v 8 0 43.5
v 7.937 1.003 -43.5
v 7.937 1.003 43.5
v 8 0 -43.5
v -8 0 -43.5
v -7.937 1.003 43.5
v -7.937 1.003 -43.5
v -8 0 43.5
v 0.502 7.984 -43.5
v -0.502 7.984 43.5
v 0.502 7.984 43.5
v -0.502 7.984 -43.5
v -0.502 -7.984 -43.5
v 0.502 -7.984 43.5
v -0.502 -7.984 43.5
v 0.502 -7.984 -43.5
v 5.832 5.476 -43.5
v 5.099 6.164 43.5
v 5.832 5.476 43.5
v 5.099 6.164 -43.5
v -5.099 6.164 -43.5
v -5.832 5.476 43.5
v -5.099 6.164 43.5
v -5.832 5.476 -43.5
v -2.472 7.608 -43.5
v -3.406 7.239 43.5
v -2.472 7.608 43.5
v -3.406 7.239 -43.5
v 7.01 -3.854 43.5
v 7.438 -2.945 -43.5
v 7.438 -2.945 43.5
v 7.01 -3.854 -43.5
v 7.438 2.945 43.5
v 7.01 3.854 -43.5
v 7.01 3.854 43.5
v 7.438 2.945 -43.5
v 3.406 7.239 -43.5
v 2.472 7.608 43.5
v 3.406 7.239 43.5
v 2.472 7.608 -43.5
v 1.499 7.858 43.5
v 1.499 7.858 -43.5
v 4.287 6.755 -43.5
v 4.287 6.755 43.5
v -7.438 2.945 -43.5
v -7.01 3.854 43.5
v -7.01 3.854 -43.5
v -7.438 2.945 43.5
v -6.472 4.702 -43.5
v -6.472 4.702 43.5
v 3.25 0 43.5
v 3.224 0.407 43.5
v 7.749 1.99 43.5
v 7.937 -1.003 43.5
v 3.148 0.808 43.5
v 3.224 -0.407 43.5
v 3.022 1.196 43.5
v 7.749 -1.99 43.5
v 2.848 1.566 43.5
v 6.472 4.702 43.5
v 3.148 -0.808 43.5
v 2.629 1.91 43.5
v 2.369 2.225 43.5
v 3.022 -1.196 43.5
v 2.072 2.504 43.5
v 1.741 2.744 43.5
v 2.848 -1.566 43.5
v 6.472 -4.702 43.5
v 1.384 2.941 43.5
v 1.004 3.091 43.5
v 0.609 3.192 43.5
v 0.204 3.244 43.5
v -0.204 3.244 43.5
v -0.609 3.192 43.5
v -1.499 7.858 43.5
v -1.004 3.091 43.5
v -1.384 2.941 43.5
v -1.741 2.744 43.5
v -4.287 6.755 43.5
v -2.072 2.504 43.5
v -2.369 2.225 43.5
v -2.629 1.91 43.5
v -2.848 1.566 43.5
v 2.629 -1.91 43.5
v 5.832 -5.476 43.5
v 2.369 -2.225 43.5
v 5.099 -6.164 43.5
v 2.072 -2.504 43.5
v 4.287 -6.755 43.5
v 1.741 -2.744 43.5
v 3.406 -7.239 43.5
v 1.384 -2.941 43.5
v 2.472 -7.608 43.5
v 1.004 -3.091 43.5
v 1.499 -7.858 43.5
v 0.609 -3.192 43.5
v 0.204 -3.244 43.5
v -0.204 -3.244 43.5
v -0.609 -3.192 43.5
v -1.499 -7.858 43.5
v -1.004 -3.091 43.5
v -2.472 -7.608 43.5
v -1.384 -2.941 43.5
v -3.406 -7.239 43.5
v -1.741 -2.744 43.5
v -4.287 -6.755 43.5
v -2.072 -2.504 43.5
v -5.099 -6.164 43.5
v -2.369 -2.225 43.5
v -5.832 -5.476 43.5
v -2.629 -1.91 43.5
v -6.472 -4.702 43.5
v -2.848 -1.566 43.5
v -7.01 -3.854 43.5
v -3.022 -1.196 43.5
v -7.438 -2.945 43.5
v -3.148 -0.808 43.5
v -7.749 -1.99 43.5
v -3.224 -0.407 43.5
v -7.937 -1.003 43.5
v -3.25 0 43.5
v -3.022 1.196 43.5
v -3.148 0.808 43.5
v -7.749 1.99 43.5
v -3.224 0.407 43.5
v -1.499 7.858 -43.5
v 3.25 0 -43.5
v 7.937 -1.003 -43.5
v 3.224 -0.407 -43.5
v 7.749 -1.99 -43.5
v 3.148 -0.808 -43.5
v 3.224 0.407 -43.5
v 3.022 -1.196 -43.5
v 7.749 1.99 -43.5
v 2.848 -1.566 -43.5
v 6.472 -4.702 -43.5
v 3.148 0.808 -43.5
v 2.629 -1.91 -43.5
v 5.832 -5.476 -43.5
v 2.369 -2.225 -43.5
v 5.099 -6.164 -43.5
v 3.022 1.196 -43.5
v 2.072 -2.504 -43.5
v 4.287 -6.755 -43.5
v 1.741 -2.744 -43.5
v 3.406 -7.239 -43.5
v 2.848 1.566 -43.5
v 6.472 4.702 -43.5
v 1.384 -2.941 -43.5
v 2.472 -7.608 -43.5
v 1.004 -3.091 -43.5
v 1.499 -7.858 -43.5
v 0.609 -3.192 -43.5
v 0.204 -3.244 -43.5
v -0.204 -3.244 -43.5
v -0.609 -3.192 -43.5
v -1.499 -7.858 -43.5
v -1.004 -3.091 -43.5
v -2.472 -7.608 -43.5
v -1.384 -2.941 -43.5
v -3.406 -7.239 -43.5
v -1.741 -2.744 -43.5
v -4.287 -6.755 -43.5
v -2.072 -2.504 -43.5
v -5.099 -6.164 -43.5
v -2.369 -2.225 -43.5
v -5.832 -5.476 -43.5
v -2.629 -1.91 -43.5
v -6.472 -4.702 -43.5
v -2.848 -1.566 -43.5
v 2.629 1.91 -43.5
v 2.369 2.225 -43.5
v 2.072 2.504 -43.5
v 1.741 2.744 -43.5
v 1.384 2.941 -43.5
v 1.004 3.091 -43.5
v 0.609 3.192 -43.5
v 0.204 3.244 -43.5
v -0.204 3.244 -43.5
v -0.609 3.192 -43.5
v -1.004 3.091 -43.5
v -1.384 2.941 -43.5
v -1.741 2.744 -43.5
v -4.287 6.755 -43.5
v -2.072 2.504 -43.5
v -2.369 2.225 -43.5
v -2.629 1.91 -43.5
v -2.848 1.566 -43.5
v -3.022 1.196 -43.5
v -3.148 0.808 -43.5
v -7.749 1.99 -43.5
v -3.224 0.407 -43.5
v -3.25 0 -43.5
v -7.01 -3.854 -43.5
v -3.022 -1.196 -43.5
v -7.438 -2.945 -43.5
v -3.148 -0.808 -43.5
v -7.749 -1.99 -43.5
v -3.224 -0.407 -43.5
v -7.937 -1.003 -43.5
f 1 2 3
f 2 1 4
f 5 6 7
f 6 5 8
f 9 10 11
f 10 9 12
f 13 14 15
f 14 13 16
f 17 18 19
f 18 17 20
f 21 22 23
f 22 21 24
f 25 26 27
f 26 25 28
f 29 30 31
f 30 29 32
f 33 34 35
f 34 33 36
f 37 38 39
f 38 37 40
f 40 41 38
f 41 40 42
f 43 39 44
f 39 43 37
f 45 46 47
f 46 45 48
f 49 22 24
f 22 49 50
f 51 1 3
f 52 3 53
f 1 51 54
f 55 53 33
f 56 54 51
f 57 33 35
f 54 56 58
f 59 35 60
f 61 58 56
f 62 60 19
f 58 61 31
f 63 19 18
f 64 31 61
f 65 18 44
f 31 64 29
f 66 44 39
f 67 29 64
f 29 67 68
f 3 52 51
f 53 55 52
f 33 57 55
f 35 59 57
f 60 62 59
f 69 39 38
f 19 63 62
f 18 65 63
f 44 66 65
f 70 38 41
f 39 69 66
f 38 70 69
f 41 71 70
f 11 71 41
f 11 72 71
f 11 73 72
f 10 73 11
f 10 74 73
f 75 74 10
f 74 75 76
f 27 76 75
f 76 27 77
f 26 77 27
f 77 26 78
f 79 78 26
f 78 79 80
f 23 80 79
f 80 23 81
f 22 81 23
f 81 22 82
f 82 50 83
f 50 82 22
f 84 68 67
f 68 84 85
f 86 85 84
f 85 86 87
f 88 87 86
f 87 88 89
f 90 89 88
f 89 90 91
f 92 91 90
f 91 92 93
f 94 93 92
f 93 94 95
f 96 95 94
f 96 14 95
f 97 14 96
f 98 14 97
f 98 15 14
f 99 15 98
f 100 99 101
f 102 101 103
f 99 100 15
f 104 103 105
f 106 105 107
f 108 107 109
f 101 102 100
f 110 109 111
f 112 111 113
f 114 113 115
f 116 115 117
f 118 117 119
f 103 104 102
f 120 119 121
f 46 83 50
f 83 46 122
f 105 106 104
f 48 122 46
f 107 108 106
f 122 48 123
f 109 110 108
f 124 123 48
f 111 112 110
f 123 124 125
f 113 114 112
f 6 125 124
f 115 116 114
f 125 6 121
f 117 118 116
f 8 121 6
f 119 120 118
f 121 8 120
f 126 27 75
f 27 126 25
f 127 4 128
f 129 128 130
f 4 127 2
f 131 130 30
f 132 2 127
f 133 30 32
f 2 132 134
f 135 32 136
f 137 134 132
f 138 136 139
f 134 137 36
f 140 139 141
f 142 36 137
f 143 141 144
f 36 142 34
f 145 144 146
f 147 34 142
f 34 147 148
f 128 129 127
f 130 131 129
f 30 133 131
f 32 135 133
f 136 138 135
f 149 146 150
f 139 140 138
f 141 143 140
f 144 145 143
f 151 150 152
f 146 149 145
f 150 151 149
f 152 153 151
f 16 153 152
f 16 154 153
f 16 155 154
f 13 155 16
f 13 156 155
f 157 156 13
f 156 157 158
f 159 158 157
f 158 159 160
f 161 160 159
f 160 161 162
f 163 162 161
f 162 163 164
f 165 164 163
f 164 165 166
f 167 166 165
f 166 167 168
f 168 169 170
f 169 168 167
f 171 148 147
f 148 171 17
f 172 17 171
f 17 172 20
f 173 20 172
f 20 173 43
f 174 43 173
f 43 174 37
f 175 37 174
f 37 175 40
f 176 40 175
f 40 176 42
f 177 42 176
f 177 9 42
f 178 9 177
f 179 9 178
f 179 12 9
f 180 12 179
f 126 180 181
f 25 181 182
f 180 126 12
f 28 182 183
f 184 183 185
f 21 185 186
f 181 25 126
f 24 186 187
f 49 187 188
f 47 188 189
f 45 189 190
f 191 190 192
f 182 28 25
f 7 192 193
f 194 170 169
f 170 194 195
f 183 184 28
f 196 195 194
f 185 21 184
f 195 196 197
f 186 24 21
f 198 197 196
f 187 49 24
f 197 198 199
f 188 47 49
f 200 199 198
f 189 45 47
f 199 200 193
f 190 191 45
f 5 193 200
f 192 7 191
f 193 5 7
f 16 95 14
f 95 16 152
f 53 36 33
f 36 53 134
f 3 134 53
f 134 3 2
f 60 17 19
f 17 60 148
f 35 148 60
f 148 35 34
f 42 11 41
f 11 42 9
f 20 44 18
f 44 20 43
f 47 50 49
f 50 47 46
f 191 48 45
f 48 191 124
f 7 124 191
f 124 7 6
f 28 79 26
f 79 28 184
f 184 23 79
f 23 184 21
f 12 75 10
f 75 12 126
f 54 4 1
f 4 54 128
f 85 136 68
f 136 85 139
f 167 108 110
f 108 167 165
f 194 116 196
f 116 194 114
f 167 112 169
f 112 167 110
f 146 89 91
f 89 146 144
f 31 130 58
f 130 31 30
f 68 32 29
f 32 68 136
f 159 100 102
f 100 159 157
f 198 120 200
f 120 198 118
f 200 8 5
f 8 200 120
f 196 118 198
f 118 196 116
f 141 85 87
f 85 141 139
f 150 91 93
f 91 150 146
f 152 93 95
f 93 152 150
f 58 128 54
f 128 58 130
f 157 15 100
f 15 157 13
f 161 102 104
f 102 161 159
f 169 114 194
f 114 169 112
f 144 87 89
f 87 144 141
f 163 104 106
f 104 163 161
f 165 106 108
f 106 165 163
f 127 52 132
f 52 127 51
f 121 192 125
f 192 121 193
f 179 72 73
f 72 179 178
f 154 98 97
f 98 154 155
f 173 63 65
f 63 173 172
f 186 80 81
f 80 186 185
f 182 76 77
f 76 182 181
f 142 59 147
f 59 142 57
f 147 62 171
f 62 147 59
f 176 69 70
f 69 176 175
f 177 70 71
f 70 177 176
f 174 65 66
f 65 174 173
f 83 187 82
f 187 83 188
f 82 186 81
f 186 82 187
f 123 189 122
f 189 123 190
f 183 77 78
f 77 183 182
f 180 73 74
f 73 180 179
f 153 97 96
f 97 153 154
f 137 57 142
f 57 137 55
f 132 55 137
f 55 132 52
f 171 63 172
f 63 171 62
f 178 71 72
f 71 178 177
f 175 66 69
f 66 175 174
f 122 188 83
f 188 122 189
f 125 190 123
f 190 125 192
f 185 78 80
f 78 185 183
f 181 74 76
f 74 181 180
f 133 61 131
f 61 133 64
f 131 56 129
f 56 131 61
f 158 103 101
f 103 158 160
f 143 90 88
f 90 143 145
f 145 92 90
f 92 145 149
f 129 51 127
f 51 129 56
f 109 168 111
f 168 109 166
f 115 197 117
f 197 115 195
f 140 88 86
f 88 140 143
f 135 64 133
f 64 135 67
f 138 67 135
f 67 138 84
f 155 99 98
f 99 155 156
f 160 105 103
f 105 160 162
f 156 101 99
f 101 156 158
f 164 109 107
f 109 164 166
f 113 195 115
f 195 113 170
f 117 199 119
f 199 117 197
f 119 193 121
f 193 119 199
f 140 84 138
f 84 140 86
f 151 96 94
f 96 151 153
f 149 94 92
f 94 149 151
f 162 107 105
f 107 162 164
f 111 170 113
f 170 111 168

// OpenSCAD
$fn = 50;


difference() {
	union() {
		translate(v = [0, 0, -43.5000000000]) {
			cylinder(h = 87, r = 8.0000000000);
		}
	}
	union() {
		translate(v = [0, 0, -100.0000000000]) {
			cylinder(h = 200, r = 3.2500000000);
		}
	}
}
